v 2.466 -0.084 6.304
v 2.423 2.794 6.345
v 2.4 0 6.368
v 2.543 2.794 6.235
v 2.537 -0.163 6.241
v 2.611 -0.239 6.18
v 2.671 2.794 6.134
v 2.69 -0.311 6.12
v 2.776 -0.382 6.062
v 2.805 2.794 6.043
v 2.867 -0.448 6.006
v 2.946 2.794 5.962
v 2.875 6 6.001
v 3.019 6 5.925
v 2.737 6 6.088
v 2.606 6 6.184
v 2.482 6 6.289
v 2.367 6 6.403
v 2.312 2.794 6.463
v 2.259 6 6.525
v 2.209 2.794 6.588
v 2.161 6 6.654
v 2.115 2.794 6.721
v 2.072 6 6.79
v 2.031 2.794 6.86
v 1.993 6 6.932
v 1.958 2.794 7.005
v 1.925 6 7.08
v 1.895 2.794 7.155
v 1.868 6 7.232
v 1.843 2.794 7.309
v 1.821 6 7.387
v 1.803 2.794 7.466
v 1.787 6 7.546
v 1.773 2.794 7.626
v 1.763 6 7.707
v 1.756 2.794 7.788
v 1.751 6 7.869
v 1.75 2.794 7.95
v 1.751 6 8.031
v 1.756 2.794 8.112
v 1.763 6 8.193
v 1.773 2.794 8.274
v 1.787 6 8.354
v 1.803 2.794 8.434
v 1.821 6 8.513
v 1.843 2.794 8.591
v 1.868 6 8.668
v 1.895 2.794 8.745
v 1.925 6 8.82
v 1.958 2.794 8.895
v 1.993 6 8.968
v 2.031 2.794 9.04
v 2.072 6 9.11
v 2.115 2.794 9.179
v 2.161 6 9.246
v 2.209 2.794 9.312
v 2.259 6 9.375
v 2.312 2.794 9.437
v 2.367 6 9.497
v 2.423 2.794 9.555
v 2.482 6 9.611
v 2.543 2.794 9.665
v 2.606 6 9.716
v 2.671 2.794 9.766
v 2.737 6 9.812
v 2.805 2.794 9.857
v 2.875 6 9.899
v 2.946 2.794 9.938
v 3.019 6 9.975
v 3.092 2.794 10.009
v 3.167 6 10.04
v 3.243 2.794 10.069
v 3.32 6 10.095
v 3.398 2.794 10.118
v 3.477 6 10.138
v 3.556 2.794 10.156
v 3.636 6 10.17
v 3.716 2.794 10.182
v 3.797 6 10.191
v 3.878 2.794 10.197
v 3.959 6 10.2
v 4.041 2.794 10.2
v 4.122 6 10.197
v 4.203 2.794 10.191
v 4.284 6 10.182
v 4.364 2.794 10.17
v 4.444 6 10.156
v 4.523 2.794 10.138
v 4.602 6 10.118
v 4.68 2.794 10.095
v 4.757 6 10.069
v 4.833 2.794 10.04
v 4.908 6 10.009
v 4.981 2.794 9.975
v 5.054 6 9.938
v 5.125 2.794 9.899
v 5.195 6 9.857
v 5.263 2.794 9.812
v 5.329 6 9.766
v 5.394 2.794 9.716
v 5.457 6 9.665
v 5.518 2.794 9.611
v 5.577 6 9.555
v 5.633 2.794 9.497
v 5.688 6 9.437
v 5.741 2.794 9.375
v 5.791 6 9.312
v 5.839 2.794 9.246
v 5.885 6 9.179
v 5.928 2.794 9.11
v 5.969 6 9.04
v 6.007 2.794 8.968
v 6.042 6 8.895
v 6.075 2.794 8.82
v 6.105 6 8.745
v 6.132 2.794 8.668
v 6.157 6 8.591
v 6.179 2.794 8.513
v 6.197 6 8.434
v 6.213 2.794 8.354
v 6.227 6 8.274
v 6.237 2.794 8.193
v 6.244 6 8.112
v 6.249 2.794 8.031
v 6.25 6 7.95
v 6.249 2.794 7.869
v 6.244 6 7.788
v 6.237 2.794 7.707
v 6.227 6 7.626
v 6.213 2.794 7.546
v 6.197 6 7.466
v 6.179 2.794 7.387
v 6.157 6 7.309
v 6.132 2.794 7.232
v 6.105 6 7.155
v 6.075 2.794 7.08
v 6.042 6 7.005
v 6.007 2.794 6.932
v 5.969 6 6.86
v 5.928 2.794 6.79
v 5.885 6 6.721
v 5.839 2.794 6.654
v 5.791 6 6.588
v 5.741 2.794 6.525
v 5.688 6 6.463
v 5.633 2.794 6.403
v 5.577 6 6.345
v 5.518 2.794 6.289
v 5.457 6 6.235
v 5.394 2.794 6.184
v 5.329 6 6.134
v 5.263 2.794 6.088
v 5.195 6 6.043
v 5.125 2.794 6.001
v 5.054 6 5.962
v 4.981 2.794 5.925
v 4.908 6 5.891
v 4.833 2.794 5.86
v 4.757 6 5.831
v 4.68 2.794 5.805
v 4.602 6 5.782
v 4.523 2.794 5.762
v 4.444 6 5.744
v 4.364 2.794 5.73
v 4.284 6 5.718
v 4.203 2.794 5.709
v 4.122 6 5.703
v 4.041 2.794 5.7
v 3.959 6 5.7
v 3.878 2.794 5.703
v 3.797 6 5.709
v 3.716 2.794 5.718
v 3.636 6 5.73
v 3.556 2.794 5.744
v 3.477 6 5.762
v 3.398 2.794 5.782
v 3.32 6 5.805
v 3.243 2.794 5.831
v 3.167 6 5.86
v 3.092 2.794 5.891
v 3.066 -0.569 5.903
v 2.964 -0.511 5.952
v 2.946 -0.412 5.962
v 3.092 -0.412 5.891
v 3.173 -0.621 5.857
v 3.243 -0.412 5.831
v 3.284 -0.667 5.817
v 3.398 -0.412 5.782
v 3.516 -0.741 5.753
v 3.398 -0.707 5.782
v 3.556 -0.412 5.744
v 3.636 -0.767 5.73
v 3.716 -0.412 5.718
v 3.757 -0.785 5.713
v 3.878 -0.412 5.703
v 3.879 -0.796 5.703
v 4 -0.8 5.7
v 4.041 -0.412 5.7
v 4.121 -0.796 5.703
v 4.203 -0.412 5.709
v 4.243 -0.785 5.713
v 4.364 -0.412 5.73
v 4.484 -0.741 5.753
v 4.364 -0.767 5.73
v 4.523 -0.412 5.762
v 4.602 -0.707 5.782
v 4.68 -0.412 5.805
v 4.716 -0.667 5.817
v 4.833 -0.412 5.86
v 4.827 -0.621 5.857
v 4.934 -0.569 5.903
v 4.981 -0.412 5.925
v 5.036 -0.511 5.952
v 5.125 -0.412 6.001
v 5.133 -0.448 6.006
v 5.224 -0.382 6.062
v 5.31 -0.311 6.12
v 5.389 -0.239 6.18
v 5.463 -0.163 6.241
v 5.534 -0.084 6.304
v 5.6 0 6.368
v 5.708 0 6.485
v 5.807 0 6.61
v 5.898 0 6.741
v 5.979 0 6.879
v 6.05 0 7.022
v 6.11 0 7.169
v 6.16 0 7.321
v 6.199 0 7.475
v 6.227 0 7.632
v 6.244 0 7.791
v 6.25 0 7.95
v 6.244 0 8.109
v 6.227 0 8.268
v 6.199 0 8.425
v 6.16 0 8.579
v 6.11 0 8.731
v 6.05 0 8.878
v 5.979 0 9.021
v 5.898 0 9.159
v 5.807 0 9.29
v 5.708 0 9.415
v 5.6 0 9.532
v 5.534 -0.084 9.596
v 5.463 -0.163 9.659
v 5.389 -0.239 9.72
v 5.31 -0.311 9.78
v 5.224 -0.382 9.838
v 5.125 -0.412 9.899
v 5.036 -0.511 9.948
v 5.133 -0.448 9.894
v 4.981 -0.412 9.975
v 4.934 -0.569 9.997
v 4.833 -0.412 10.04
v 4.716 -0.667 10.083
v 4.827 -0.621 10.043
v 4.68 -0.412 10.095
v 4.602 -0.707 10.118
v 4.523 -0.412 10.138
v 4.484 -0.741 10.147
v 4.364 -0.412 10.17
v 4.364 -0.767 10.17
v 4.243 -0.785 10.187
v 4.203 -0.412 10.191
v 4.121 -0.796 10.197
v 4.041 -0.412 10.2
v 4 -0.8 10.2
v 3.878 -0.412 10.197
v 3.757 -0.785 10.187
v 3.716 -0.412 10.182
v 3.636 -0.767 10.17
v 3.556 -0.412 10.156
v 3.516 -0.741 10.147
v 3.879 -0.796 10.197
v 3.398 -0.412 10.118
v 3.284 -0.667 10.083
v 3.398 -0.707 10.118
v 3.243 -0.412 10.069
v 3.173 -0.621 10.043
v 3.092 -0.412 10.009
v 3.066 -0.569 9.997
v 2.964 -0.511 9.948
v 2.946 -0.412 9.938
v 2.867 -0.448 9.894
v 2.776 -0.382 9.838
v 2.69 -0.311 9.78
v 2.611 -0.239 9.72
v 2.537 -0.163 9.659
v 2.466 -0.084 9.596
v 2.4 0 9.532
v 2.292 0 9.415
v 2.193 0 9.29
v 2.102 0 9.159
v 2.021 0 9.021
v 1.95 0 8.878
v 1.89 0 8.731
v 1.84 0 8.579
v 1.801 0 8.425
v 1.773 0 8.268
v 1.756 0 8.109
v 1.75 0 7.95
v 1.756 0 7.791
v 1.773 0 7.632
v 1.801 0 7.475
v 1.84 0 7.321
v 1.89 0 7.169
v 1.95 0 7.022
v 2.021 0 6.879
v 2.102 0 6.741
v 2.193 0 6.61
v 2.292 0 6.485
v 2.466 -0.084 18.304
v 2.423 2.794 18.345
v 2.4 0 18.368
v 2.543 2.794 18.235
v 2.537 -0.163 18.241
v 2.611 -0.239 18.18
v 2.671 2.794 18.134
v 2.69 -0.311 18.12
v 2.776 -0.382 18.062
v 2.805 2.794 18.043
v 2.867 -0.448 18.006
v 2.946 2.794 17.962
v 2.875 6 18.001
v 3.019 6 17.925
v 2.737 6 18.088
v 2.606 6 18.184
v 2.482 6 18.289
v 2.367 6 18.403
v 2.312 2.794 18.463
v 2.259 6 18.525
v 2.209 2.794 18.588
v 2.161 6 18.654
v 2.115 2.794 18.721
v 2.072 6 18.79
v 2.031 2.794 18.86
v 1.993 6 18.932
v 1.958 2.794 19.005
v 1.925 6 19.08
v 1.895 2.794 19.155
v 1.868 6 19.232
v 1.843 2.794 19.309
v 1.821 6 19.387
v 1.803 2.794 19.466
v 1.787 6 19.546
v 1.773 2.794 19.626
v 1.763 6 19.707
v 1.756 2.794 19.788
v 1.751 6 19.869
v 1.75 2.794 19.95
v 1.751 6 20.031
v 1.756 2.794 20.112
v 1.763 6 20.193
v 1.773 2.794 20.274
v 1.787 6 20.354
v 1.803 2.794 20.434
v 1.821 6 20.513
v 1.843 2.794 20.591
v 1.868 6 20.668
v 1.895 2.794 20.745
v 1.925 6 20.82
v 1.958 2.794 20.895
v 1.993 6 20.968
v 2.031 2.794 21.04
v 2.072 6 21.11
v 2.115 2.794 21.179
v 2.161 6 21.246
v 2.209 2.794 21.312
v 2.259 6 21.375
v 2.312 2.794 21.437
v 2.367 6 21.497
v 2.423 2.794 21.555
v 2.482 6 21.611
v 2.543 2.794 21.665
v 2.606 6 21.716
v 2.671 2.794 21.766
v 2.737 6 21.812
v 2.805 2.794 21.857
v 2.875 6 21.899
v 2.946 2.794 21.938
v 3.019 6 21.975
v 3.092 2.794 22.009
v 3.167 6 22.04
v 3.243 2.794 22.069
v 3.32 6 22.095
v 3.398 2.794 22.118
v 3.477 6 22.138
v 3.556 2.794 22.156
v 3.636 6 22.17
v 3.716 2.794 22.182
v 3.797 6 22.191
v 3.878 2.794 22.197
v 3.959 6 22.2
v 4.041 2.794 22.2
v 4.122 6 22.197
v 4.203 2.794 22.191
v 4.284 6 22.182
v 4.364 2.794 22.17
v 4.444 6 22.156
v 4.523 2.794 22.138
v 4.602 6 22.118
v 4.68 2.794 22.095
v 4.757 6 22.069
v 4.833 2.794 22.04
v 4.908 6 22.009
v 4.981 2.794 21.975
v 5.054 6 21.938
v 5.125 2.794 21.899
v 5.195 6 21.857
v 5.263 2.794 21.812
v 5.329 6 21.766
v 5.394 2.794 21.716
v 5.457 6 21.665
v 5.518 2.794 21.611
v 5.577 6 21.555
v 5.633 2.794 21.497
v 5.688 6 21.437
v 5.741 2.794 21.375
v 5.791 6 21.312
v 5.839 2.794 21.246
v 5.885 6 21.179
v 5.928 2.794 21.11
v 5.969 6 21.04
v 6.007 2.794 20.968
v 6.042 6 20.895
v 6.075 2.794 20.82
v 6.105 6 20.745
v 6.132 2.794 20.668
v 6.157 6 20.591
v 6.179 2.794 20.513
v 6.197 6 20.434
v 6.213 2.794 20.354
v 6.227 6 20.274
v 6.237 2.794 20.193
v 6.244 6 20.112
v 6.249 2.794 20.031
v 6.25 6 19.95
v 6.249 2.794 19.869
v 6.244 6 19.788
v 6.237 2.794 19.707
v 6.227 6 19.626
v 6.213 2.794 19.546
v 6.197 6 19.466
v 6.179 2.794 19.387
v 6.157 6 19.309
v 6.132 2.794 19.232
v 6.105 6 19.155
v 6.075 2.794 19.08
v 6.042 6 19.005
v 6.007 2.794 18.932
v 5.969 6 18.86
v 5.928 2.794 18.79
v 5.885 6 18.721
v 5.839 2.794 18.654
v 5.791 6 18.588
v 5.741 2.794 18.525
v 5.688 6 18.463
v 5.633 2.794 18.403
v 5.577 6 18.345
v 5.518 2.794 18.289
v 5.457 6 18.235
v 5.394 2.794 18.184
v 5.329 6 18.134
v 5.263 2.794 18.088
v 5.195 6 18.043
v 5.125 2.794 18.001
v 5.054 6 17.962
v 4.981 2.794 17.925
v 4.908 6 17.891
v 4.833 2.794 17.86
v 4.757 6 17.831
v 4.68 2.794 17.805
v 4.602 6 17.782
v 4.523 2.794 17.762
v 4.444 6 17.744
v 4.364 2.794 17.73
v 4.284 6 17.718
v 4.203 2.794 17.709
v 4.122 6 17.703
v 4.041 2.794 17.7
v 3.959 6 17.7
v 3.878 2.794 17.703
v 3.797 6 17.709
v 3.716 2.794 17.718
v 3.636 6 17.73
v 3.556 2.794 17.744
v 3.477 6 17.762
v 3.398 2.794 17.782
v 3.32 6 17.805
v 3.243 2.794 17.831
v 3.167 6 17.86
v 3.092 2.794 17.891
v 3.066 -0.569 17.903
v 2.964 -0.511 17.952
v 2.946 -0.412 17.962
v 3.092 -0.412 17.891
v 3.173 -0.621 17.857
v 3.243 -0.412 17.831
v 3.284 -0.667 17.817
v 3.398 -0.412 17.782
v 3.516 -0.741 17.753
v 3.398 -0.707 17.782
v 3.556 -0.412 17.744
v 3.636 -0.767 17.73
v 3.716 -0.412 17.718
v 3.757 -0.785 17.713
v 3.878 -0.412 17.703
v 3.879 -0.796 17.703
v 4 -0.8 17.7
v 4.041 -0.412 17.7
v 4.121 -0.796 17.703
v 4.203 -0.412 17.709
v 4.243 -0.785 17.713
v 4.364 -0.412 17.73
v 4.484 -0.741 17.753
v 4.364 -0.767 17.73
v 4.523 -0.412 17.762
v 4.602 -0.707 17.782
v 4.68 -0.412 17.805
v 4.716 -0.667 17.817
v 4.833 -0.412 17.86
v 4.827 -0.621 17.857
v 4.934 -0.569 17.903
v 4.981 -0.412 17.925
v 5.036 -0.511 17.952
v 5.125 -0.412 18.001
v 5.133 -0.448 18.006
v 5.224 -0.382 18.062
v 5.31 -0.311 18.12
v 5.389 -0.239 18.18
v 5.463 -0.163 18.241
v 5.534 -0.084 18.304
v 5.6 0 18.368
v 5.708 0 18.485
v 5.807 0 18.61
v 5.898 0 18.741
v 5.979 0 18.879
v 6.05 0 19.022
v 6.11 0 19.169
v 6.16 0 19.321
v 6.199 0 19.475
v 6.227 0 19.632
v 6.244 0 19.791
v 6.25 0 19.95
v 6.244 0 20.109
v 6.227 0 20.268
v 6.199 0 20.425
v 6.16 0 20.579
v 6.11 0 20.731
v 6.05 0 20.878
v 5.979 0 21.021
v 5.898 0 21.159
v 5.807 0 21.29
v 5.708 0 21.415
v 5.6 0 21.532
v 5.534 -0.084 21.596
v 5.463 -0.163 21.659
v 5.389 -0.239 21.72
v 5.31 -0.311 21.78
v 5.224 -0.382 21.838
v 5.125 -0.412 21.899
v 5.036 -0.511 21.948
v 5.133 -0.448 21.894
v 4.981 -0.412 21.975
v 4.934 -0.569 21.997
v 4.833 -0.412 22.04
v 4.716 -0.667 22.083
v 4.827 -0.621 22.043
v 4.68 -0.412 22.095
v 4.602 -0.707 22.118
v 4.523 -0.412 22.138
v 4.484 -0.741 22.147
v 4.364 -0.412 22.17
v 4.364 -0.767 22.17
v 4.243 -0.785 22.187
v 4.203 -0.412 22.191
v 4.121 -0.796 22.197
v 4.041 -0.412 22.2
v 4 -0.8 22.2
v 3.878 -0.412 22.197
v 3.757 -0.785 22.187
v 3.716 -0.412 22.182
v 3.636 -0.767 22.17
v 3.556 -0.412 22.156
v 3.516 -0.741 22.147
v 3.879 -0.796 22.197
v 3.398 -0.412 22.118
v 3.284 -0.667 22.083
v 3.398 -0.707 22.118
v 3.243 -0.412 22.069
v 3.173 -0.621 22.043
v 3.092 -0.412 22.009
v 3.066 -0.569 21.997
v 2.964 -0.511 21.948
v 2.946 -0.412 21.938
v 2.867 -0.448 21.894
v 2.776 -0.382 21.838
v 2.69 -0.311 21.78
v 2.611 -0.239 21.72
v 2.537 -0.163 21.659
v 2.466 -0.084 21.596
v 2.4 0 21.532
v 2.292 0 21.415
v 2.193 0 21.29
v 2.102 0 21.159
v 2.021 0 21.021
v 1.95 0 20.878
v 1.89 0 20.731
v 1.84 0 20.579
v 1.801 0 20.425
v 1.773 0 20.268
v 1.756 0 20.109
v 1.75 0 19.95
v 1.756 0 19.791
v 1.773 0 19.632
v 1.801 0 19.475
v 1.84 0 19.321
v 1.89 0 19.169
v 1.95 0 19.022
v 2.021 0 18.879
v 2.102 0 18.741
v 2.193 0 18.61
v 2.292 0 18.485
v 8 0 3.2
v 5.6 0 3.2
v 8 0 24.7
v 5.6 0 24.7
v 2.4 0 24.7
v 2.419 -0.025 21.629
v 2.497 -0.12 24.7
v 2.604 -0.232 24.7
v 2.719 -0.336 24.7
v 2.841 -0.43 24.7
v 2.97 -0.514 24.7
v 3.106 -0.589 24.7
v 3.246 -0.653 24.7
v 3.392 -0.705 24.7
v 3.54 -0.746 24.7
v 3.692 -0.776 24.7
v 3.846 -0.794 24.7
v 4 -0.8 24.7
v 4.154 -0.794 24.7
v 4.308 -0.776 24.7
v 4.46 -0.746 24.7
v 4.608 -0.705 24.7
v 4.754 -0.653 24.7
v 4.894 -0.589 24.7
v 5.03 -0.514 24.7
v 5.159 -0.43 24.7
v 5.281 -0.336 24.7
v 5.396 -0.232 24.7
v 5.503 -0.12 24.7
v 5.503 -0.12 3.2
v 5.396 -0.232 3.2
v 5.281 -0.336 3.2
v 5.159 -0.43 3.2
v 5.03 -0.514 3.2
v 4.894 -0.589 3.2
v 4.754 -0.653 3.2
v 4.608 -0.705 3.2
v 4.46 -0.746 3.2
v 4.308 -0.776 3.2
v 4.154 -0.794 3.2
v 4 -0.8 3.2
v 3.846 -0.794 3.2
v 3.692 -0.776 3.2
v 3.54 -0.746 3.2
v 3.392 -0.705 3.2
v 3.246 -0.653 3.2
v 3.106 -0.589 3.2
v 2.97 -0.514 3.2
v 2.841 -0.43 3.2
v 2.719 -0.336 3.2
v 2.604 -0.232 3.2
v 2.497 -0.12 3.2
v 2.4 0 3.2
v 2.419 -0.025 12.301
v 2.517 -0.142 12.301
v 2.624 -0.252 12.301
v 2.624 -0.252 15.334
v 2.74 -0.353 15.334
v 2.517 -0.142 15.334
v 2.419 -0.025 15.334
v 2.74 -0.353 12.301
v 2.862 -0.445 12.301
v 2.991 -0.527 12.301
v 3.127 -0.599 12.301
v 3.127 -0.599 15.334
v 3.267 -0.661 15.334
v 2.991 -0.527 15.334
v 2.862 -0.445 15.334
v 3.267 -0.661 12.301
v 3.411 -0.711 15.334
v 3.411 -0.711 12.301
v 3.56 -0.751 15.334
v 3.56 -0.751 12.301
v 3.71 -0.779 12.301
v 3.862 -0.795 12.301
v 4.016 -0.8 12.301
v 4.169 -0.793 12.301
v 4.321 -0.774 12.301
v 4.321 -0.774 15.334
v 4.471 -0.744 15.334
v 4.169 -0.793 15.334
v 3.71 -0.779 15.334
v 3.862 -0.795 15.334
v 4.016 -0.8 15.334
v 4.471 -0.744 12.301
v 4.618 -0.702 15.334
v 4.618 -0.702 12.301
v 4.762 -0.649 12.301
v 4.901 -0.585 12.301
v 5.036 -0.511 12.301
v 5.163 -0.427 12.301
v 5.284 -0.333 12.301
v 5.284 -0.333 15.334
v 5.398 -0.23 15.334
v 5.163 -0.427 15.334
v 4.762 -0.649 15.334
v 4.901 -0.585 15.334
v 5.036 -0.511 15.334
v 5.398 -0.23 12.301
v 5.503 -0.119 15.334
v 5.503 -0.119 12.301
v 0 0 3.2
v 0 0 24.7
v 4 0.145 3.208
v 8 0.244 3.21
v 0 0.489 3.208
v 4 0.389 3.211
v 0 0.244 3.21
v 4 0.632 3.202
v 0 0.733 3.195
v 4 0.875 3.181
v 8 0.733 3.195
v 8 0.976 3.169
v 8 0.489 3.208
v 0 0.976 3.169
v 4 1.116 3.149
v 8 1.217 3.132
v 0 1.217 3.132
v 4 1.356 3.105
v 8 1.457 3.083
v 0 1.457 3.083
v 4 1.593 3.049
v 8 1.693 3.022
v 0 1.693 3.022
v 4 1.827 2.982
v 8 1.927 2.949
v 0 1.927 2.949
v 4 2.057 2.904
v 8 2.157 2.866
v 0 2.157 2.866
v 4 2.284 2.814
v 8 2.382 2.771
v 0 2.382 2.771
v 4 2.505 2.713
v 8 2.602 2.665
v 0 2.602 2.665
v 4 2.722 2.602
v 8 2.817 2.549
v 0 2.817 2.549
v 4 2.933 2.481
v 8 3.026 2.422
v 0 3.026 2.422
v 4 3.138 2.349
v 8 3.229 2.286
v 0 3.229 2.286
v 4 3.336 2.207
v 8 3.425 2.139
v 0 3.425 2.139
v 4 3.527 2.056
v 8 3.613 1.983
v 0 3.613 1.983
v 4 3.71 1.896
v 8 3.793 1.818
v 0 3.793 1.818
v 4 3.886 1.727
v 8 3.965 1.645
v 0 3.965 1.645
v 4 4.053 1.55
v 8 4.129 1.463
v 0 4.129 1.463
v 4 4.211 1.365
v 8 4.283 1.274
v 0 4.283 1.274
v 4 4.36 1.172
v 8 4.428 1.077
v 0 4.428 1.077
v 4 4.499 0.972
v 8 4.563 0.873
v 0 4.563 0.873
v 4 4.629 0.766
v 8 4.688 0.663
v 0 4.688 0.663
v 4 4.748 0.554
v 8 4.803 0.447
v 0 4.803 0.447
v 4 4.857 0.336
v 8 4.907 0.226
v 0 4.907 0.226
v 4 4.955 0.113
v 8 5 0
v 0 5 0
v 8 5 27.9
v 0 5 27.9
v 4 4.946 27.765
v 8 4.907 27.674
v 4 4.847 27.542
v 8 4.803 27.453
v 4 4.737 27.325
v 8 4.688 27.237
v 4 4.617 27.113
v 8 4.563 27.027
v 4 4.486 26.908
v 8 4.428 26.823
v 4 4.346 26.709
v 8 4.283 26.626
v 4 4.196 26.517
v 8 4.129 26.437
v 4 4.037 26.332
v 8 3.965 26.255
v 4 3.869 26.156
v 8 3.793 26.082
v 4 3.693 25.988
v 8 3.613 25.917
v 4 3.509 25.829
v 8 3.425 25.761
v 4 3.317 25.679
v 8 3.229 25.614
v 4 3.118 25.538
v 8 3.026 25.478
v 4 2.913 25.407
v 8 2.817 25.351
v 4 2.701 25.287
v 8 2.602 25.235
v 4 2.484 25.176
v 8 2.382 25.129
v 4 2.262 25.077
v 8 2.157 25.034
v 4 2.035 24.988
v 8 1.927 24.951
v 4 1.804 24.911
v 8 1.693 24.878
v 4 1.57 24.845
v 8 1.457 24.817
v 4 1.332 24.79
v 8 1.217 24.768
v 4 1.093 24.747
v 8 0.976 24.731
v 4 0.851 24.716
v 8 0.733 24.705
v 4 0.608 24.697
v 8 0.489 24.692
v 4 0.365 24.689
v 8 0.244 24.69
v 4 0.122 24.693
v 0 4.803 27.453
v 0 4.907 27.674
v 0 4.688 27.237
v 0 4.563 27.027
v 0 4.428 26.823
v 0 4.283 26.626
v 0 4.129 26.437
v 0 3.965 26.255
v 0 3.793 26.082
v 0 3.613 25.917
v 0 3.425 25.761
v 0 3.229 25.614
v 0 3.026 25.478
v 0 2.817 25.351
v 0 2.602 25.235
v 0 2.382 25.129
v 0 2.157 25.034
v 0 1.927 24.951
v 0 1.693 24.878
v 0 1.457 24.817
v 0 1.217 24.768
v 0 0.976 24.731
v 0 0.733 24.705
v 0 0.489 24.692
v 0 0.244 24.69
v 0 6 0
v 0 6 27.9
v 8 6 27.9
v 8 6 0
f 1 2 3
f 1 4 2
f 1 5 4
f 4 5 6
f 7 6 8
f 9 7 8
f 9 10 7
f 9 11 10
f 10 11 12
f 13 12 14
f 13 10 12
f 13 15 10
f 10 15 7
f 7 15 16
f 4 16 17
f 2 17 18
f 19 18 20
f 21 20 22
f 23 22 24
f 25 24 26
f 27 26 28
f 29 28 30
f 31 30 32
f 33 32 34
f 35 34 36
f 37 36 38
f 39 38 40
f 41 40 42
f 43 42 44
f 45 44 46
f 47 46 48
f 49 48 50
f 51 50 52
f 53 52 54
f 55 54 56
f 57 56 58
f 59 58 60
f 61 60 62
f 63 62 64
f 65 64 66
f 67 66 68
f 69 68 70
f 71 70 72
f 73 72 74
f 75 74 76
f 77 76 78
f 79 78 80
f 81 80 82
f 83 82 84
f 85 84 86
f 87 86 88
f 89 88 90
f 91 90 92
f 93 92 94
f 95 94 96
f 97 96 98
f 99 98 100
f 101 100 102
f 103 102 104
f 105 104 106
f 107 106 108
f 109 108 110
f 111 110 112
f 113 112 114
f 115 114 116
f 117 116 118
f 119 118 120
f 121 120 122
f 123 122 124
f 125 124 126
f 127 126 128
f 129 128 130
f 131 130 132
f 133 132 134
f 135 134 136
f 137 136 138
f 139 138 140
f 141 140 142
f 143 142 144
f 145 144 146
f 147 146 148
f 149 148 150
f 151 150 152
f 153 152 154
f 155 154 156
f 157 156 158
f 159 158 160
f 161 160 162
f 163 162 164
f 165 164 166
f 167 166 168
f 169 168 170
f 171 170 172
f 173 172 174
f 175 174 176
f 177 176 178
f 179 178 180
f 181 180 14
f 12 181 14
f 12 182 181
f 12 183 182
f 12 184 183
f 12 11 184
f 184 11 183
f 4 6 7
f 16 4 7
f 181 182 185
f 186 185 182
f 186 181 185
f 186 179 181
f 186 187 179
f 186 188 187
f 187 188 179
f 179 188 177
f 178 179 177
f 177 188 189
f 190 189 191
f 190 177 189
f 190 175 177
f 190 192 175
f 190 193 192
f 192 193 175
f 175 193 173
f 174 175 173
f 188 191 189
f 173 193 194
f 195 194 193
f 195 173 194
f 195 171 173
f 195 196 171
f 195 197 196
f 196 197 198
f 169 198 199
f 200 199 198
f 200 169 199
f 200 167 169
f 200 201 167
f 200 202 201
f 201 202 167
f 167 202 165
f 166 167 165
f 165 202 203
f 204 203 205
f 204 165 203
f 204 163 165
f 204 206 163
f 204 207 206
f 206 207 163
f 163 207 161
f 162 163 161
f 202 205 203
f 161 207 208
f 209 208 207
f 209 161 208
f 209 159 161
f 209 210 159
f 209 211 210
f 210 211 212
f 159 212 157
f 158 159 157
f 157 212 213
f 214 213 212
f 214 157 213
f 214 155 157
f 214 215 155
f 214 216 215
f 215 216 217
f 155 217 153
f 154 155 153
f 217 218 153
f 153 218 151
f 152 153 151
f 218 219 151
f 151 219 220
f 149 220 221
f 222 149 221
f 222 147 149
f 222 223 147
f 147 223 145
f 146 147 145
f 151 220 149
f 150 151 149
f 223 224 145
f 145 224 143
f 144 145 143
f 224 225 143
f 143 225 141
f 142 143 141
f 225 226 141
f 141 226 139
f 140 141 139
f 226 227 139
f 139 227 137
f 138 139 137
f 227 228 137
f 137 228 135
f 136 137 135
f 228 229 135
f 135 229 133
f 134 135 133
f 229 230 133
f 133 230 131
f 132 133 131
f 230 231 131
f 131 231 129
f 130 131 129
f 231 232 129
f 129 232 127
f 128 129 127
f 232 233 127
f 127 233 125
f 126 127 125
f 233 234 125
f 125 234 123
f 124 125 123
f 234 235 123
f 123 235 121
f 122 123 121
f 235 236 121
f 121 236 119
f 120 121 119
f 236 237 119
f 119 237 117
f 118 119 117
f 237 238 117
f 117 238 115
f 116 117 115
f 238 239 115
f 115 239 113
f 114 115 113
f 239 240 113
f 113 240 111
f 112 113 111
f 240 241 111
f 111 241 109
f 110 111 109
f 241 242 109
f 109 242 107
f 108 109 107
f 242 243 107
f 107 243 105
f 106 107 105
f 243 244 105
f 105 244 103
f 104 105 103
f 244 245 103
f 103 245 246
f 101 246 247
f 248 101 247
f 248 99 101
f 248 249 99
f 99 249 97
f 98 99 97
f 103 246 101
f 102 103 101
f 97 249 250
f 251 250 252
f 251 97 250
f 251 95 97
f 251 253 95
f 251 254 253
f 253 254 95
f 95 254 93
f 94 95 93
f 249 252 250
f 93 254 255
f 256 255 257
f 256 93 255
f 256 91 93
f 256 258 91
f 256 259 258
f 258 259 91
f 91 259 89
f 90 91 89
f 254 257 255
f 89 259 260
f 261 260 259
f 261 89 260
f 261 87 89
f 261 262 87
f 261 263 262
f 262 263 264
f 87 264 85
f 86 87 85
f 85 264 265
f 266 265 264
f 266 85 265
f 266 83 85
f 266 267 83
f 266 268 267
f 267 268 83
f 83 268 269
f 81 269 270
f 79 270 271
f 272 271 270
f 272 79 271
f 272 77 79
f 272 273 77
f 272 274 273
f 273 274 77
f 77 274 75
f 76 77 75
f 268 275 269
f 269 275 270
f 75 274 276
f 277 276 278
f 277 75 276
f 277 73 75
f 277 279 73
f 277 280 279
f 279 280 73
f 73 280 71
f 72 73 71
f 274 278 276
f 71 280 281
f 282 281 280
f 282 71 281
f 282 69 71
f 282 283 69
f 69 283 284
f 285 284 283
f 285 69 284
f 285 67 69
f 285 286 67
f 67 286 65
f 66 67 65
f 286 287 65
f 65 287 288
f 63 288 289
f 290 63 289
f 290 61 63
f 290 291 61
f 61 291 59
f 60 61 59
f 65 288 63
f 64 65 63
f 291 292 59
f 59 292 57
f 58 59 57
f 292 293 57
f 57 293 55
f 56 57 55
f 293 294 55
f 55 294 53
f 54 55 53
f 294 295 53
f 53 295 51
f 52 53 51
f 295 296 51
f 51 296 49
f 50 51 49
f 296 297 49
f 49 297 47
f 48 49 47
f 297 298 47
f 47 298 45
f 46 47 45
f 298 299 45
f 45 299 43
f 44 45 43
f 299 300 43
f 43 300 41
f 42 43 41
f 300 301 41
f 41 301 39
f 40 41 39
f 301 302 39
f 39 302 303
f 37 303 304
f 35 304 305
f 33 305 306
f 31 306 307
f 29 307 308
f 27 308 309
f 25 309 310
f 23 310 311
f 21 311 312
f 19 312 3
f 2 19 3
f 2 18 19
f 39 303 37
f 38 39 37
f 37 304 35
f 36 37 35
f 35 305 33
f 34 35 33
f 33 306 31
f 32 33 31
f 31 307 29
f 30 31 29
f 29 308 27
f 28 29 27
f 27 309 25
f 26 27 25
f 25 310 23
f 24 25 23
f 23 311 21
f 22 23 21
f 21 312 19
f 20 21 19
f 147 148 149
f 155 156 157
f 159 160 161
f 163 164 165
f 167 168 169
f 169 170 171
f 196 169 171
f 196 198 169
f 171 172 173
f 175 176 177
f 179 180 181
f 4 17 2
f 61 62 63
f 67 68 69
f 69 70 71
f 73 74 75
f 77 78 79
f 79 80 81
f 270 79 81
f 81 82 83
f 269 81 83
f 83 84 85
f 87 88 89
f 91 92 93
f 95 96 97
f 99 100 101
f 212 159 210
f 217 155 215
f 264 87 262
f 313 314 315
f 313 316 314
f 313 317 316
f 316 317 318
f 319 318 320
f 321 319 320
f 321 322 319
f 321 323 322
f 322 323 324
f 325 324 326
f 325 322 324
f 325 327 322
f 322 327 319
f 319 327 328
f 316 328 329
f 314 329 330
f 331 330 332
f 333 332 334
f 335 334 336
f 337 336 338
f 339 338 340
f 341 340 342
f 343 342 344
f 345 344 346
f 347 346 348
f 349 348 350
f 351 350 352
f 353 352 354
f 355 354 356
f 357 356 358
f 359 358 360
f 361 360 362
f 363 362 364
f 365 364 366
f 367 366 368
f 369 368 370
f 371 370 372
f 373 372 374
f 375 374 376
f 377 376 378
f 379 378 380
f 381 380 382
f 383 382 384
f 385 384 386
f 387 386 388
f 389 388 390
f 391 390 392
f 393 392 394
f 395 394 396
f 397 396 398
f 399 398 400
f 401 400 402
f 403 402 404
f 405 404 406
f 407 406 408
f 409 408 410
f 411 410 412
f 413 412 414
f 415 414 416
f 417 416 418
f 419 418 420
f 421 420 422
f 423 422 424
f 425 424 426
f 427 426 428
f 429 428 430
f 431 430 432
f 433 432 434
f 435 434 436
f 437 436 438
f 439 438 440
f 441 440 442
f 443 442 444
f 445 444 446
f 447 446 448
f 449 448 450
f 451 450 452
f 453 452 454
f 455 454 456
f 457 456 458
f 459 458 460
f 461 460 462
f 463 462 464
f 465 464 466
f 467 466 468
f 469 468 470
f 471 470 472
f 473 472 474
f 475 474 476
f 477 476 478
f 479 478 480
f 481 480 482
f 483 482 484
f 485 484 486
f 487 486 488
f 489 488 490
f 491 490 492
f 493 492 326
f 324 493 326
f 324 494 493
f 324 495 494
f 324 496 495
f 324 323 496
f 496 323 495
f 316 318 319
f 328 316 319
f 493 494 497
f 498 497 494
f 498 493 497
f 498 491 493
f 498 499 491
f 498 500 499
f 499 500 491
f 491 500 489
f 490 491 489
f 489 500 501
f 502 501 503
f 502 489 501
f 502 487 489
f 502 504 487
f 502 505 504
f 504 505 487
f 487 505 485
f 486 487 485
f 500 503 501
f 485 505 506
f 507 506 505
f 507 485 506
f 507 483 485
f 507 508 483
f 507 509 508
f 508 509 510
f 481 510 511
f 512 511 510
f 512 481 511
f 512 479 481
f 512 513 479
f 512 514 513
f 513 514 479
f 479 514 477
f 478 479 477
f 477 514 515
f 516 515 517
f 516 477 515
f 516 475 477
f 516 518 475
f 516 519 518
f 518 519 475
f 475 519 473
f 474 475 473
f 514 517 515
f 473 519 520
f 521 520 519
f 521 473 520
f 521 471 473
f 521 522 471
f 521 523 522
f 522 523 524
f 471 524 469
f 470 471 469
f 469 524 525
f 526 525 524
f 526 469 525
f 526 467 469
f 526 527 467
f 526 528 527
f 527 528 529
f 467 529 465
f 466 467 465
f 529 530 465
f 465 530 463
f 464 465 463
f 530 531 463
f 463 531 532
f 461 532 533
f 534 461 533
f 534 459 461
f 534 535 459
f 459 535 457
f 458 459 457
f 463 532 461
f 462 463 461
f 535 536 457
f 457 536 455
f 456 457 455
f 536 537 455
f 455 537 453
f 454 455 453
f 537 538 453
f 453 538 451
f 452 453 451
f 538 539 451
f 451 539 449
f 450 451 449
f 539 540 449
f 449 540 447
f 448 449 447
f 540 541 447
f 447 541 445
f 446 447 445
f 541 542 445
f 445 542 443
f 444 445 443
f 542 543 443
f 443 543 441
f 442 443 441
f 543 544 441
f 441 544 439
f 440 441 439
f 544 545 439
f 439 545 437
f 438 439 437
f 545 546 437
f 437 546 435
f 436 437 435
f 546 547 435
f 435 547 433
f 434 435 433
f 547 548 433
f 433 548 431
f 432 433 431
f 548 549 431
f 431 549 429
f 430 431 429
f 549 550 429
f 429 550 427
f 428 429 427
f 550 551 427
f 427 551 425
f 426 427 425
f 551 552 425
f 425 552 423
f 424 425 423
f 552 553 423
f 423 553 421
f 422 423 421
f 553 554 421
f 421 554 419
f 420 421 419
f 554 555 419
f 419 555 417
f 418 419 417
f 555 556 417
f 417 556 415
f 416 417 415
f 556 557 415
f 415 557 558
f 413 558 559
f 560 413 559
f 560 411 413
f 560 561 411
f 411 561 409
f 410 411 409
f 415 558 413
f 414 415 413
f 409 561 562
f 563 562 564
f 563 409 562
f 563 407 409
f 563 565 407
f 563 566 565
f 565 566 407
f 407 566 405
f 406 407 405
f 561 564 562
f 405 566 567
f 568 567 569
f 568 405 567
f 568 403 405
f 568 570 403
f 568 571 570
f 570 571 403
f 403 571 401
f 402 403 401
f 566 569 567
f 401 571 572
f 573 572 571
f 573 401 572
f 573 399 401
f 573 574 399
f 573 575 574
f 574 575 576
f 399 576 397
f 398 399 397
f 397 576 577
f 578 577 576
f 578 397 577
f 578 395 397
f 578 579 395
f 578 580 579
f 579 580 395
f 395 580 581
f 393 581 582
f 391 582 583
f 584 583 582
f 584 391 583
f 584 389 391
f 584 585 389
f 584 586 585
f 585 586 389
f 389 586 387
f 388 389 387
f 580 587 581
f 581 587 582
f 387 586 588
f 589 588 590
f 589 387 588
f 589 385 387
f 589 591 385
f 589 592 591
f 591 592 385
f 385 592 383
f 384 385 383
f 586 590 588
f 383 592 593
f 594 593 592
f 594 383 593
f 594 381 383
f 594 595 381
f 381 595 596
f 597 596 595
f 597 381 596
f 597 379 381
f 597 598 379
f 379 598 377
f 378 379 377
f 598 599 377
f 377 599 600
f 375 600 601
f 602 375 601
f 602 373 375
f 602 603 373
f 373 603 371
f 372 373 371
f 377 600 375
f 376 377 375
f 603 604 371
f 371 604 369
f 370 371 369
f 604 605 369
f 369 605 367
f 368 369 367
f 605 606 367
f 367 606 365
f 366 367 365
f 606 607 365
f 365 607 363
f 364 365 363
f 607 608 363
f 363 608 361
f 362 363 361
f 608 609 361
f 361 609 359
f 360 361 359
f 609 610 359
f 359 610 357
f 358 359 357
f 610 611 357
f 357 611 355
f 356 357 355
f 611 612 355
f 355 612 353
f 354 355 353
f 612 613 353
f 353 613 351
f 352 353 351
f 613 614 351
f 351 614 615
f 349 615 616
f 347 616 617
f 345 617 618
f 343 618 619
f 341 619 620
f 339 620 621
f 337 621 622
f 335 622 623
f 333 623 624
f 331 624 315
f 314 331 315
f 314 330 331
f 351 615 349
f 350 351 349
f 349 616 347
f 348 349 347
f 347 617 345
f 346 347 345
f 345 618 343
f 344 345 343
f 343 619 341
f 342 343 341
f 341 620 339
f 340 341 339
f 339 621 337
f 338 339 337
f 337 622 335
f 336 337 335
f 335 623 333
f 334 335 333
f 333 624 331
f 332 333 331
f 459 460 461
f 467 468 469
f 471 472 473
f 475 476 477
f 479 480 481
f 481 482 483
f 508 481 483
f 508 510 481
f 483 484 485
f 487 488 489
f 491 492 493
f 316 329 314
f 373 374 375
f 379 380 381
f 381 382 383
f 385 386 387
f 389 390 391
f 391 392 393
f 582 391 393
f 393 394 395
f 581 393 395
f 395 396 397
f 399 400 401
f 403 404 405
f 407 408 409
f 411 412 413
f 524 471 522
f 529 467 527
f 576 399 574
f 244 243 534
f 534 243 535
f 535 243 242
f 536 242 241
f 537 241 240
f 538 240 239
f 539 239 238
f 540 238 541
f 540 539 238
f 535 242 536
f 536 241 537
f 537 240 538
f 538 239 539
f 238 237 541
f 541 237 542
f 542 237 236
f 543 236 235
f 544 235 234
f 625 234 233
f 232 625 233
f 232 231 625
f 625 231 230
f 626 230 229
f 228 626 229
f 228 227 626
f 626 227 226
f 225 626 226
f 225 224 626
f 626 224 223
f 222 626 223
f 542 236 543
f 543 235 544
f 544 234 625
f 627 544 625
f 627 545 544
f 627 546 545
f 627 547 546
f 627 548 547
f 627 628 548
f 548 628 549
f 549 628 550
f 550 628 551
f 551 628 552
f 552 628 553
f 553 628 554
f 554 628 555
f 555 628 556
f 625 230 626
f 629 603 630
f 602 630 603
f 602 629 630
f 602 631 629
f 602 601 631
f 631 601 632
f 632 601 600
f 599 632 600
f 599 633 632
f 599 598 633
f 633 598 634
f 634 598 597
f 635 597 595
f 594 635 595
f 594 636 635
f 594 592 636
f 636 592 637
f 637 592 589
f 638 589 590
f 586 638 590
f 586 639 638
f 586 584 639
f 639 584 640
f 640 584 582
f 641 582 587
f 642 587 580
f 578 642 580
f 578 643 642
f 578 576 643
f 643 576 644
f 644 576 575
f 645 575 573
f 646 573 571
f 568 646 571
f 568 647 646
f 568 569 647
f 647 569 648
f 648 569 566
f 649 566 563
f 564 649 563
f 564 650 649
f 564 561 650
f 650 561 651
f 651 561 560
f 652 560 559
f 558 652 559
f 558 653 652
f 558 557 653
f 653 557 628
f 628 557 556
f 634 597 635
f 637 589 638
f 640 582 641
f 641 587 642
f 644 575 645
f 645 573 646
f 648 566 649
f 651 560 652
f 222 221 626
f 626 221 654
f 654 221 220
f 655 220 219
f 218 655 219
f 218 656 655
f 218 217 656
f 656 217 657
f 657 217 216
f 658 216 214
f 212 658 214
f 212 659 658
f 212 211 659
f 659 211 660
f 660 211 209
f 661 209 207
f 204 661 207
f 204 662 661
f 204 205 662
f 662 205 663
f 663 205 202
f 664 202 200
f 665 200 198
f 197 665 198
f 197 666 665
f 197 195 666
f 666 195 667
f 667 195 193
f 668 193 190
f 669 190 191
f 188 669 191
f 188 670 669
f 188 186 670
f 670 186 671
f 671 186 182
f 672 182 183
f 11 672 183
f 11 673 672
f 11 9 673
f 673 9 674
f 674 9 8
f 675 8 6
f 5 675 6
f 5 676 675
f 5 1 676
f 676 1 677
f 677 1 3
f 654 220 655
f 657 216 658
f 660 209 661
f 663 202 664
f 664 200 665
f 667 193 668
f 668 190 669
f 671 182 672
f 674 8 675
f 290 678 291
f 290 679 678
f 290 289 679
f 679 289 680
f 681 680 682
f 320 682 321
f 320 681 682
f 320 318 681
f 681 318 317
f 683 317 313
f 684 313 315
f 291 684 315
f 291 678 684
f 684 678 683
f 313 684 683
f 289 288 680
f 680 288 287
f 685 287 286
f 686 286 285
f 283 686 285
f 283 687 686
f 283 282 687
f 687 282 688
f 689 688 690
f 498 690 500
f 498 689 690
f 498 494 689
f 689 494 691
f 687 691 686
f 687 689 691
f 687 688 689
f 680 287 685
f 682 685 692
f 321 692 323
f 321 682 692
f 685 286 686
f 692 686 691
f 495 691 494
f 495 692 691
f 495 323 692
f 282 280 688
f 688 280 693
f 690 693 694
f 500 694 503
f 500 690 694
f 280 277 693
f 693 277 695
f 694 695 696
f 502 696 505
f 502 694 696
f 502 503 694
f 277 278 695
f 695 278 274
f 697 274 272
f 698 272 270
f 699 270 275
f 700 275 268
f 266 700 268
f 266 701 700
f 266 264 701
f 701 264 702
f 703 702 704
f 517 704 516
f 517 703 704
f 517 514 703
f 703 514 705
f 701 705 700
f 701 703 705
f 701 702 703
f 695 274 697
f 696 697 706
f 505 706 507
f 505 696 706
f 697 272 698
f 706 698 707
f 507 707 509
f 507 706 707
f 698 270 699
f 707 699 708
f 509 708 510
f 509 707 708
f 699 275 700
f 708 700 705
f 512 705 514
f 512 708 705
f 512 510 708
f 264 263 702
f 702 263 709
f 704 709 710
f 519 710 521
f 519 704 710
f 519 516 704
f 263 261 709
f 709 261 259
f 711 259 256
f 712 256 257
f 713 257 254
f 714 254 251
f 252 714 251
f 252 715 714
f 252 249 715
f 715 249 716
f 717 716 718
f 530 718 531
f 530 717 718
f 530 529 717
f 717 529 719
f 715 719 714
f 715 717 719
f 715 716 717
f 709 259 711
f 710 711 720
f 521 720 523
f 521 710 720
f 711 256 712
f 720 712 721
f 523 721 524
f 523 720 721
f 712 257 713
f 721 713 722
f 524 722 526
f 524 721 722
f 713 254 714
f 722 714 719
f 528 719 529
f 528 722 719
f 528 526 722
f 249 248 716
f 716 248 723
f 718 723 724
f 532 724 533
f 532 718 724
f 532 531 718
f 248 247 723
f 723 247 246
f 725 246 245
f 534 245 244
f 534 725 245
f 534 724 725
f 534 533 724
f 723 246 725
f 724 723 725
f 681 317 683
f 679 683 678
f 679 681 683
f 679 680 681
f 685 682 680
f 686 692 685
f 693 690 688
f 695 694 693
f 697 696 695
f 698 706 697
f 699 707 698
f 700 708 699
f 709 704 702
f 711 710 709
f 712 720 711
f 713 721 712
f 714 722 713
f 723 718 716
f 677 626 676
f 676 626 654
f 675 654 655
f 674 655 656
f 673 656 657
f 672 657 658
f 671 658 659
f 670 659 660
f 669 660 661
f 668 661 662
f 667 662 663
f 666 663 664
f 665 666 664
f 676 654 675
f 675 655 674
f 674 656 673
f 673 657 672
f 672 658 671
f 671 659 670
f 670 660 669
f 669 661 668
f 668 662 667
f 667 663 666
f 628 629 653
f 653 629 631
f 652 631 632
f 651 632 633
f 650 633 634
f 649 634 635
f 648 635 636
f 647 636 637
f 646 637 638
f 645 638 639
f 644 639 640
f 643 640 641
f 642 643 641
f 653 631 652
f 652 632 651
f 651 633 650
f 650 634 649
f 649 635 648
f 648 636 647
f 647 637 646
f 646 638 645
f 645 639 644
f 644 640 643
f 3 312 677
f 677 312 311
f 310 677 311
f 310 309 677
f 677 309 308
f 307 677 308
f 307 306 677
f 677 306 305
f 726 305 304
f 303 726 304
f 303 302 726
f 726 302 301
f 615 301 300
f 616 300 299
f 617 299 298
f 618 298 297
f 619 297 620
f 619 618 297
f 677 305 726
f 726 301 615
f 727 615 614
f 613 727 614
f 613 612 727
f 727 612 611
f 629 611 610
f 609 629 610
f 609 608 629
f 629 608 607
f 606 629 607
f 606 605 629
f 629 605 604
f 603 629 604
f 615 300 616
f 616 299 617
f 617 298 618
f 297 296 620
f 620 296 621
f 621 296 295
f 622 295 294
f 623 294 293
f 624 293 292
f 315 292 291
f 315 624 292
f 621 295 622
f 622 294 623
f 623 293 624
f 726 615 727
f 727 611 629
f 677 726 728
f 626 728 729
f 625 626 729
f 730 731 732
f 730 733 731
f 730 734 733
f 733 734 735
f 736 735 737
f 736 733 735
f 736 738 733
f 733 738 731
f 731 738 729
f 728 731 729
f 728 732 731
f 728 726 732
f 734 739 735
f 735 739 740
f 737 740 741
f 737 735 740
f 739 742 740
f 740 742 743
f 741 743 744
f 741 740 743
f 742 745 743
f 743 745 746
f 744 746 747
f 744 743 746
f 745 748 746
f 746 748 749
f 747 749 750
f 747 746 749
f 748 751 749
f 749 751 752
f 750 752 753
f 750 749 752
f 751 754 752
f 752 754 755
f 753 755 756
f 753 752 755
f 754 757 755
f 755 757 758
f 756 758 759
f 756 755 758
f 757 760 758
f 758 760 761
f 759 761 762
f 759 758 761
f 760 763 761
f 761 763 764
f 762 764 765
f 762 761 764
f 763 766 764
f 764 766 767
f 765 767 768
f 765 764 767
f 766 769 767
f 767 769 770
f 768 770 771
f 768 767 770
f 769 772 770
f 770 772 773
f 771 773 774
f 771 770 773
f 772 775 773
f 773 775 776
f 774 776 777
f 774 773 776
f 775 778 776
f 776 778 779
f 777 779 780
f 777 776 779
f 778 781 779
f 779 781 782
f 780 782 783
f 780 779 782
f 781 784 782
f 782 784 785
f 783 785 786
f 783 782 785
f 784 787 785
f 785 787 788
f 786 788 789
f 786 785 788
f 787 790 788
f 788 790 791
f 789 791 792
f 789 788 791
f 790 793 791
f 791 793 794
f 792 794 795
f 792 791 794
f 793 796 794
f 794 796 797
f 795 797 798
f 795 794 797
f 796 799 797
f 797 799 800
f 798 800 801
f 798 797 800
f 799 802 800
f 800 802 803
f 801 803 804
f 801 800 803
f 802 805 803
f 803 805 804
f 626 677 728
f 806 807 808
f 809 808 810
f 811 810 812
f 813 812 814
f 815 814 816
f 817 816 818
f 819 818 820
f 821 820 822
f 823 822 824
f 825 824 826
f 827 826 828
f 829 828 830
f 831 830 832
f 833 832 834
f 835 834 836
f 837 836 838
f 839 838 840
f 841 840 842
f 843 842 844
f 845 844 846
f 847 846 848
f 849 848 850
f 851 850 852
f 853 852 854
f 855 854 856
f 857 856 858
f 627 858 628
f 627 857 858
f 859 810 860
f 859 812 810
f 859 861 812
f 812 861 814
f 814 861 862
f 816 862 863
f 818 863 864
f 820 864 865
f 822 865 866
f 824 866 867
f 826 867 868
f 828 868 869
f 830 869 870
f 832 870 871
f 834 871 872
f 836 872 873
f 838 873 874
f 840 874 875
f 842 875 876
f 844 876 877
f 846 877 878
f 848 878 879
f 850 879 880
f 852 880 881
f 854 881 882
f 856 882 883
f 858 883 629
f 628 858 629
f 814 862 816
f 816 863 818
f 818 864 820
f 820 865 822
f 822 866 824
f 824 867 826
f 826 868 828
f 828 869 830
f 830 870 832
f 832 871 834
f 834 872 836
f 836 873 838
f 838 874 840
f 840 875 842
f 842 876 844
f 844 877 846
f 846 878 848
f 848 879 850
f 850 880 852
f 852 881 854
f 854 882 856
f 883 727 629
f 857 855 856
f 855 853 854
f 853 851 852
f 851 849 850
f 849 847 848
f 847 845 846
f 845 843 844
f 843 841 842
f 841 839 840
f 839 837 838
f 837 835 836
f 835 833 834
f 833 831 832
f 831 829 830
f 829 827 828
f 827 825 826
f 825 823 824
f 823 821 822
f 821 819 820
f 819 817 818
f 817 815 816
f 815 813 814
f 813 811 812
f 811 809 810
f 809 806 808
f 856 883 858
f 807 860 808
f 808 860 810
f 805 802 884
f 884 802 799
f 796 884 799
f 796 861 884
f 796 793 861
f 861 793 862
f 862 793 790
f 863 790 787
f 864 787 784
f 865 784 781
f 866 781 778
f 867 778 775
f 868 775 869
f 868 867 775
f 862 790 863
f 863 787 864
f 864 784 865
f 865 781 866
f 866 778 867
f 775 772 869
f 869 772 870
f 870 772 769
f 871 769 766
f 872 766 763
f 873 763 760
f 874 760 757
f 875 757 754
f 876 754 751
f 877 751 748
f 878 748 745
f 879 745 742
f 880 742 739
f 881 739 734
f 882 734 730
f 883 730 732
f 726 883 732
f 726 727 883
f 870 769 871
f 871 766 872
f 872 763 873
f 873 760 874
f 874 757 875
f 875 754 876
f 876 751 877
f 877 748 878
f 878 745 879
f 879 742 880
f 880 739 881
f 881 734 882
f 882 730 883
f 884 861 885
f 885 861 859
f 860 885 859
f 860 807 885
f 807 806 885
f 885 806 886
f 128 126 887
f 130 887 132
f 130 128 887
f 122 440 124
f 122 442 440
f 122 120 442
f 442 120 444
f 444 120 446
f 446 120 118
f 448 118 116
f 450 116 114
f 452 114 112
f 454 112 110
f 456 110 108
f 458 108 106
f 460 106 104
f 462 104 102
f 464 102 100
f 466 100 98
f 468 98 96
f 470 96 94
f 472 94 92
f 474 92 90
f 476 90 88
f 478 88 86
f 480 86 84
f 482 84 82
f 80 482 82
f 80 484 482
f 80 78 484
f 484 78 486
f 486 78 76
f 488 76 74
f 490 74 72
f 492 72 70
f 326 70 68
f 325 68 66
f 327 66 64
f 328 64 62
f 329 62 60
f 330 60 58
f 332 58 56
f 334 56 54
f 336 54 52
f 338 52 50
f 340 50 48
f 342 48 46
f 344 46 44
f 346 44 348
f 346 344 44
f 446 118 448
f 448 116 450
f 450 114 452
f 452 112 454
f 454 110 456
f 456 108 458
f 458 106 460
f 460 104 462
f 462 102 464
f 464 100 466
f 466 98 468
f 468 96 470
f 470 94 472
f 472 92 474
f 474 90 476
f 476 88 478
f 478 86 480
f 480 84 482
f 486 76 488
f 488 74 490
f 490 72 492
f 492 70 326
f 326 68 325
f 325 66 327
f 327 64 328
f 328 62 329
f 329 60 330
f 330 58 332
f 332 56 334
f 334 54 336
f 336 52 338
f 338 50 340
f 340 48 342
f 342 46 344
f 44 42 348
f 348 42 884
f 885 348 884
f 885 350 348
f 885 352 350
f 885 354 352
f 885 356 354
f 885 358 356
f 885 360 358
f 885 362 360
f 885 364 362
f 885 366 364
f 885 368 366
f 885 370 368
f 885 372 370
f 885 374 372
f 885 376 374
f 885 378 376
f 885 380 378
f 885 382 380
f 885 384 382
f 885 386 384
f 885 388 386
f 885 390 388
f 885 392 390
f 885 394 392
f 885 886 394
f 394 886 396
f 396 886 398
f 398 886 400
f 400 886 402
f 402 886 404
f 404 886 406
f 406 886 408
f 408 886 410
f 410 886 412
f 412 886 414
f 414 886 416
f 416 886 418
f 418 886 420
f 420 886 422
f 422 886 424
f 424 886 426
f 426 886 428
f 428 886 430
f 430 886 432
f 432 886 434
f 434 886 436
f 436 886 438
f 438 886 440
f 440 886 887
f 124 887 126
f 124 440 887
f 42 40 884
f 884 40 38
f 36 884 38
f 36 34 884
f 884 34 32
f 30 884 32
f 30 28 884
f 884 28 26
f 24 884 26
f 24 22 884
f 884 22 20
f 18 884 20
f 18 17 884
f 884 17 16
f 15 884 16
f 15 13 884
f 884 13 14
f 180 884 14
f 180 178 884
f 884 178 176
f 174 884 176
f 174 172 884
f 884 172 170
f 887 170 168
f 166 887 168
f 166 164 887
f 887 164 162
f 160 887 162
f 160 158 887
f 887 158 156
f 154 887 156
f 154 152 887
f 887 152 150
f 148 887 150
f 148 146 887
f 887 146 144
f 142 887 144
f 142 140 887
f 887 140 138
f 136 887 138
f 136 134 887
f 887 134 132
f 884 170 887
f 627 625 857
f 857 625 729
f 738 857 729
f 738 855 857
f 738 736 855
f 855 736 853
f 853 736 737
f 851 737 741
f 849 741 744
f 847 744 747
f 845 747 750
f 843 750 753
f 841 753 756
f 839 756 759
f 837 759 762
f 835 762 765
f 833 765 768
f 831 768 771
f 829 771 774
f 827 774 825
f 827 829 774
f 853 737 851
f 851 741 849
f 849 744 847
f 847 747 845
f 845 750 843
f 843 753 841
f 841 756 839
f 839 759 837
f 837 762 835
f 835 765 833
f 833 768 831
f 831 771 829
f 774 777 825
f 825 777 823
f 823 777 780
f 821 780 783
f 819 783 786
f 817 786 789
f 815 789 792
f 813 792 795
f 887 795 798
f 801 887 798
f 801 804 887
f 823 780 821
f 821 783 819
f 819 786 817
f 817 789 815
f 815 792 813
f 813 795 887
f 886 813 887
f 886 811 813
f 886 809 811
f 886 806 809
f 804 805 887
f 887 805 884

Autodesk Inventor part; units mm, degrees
ref_plane "YZ Plane" through (0, 0, 0) normal (1, 0, 0) x (0, 1, 0)
ref_plane "XZ Plane" through (0, 0, 0) normal (0, 1, 0) x (-1, 0, 0)
sketch "Sketch1" plane through (0, 0, 0) normal (0, 0, 1) x (1, 0, 0)
  line L0 (0, 0) -> (8, 0)
  line L1 (8, 0) -> (8, 6)
  line L2 (8, 6) -> (0, 6)
  line L3 (0, 6) -> (0, 0)
  dimension "d0" = 8
  dimension "d1" = 6
extrude "Extrusion1" add sketch "Sketch1" along normal blind 27.9
sketch "Sketch3" plane through (8, 0, 0) normal (1, 0, 0) x (0, 0, -1)
  line L0 (0, 0) -> (0, 6) projected
  line L1 (-27.9, 0) -> (-27.9, 6) projected
  line L2 (0, 0) -> (-27.9, 0) projected
  arc A0 (-24.7, 0) -> (-27.9, 5) centre (-29.689, 0.331) ccw
  arc A1 (0, 5) -> (-3.2, 0) centre (1.789, 0.331) ccw
  dimension "d14" = 5
  dimension "d15" = 3.2
  dimension "d16" = 1
extrude "Extrusion2" cut sketch "Sketch3" against normal up to next
ref_plane "Work Plane1" through (0, 0, 3.2) normal (0, 0, -1) x (-1, 0, 0)
sketch "Sketch4" plane through (0, 0, 3.2) normal (0, 0, -1) x (-1, 0, 0)
  line L0 (0, 0) -> (-8, 0) projected
  line L1 (-8, 0) -> (0, 0) projected
  arc A0 (-5.6, 0) -> (-2.4, 0) centre (-4, 1.2) ccw
  line L2 (-8, 0) -> (-8, 5) projected
  line L3 (-5.6, 0) -> (-2.4, 0)
  dimension "d20" = 2
  dimension "d21" = 4
  dimension "d22" = 1.2
extrude "Extrusion3" add sketch "Sketch4" against normal blind 21.5
sketch "Sketch2" plane through (0, 6, 0) normal (0, 1, 0) x (1, 0, 0)
  line L0 (8, -27.9) -> (0, -27.9) projected
  line L1 (8, 0) -> (8, -27.9) projected
  point P0 (4, -7.95)
  point P1 (4, -19.95)
  dimension "d4" = 12
  dimension "d5" = 7.95
  dimension "d6" = 4
hole "Hole1" at (4, 6, 7.95) at (4, 6, 19.95) direction (0, -1, 0) diameter 4.5 end through all
properties part number "Infill3DSpringHandle" material "ABS Plastic"
